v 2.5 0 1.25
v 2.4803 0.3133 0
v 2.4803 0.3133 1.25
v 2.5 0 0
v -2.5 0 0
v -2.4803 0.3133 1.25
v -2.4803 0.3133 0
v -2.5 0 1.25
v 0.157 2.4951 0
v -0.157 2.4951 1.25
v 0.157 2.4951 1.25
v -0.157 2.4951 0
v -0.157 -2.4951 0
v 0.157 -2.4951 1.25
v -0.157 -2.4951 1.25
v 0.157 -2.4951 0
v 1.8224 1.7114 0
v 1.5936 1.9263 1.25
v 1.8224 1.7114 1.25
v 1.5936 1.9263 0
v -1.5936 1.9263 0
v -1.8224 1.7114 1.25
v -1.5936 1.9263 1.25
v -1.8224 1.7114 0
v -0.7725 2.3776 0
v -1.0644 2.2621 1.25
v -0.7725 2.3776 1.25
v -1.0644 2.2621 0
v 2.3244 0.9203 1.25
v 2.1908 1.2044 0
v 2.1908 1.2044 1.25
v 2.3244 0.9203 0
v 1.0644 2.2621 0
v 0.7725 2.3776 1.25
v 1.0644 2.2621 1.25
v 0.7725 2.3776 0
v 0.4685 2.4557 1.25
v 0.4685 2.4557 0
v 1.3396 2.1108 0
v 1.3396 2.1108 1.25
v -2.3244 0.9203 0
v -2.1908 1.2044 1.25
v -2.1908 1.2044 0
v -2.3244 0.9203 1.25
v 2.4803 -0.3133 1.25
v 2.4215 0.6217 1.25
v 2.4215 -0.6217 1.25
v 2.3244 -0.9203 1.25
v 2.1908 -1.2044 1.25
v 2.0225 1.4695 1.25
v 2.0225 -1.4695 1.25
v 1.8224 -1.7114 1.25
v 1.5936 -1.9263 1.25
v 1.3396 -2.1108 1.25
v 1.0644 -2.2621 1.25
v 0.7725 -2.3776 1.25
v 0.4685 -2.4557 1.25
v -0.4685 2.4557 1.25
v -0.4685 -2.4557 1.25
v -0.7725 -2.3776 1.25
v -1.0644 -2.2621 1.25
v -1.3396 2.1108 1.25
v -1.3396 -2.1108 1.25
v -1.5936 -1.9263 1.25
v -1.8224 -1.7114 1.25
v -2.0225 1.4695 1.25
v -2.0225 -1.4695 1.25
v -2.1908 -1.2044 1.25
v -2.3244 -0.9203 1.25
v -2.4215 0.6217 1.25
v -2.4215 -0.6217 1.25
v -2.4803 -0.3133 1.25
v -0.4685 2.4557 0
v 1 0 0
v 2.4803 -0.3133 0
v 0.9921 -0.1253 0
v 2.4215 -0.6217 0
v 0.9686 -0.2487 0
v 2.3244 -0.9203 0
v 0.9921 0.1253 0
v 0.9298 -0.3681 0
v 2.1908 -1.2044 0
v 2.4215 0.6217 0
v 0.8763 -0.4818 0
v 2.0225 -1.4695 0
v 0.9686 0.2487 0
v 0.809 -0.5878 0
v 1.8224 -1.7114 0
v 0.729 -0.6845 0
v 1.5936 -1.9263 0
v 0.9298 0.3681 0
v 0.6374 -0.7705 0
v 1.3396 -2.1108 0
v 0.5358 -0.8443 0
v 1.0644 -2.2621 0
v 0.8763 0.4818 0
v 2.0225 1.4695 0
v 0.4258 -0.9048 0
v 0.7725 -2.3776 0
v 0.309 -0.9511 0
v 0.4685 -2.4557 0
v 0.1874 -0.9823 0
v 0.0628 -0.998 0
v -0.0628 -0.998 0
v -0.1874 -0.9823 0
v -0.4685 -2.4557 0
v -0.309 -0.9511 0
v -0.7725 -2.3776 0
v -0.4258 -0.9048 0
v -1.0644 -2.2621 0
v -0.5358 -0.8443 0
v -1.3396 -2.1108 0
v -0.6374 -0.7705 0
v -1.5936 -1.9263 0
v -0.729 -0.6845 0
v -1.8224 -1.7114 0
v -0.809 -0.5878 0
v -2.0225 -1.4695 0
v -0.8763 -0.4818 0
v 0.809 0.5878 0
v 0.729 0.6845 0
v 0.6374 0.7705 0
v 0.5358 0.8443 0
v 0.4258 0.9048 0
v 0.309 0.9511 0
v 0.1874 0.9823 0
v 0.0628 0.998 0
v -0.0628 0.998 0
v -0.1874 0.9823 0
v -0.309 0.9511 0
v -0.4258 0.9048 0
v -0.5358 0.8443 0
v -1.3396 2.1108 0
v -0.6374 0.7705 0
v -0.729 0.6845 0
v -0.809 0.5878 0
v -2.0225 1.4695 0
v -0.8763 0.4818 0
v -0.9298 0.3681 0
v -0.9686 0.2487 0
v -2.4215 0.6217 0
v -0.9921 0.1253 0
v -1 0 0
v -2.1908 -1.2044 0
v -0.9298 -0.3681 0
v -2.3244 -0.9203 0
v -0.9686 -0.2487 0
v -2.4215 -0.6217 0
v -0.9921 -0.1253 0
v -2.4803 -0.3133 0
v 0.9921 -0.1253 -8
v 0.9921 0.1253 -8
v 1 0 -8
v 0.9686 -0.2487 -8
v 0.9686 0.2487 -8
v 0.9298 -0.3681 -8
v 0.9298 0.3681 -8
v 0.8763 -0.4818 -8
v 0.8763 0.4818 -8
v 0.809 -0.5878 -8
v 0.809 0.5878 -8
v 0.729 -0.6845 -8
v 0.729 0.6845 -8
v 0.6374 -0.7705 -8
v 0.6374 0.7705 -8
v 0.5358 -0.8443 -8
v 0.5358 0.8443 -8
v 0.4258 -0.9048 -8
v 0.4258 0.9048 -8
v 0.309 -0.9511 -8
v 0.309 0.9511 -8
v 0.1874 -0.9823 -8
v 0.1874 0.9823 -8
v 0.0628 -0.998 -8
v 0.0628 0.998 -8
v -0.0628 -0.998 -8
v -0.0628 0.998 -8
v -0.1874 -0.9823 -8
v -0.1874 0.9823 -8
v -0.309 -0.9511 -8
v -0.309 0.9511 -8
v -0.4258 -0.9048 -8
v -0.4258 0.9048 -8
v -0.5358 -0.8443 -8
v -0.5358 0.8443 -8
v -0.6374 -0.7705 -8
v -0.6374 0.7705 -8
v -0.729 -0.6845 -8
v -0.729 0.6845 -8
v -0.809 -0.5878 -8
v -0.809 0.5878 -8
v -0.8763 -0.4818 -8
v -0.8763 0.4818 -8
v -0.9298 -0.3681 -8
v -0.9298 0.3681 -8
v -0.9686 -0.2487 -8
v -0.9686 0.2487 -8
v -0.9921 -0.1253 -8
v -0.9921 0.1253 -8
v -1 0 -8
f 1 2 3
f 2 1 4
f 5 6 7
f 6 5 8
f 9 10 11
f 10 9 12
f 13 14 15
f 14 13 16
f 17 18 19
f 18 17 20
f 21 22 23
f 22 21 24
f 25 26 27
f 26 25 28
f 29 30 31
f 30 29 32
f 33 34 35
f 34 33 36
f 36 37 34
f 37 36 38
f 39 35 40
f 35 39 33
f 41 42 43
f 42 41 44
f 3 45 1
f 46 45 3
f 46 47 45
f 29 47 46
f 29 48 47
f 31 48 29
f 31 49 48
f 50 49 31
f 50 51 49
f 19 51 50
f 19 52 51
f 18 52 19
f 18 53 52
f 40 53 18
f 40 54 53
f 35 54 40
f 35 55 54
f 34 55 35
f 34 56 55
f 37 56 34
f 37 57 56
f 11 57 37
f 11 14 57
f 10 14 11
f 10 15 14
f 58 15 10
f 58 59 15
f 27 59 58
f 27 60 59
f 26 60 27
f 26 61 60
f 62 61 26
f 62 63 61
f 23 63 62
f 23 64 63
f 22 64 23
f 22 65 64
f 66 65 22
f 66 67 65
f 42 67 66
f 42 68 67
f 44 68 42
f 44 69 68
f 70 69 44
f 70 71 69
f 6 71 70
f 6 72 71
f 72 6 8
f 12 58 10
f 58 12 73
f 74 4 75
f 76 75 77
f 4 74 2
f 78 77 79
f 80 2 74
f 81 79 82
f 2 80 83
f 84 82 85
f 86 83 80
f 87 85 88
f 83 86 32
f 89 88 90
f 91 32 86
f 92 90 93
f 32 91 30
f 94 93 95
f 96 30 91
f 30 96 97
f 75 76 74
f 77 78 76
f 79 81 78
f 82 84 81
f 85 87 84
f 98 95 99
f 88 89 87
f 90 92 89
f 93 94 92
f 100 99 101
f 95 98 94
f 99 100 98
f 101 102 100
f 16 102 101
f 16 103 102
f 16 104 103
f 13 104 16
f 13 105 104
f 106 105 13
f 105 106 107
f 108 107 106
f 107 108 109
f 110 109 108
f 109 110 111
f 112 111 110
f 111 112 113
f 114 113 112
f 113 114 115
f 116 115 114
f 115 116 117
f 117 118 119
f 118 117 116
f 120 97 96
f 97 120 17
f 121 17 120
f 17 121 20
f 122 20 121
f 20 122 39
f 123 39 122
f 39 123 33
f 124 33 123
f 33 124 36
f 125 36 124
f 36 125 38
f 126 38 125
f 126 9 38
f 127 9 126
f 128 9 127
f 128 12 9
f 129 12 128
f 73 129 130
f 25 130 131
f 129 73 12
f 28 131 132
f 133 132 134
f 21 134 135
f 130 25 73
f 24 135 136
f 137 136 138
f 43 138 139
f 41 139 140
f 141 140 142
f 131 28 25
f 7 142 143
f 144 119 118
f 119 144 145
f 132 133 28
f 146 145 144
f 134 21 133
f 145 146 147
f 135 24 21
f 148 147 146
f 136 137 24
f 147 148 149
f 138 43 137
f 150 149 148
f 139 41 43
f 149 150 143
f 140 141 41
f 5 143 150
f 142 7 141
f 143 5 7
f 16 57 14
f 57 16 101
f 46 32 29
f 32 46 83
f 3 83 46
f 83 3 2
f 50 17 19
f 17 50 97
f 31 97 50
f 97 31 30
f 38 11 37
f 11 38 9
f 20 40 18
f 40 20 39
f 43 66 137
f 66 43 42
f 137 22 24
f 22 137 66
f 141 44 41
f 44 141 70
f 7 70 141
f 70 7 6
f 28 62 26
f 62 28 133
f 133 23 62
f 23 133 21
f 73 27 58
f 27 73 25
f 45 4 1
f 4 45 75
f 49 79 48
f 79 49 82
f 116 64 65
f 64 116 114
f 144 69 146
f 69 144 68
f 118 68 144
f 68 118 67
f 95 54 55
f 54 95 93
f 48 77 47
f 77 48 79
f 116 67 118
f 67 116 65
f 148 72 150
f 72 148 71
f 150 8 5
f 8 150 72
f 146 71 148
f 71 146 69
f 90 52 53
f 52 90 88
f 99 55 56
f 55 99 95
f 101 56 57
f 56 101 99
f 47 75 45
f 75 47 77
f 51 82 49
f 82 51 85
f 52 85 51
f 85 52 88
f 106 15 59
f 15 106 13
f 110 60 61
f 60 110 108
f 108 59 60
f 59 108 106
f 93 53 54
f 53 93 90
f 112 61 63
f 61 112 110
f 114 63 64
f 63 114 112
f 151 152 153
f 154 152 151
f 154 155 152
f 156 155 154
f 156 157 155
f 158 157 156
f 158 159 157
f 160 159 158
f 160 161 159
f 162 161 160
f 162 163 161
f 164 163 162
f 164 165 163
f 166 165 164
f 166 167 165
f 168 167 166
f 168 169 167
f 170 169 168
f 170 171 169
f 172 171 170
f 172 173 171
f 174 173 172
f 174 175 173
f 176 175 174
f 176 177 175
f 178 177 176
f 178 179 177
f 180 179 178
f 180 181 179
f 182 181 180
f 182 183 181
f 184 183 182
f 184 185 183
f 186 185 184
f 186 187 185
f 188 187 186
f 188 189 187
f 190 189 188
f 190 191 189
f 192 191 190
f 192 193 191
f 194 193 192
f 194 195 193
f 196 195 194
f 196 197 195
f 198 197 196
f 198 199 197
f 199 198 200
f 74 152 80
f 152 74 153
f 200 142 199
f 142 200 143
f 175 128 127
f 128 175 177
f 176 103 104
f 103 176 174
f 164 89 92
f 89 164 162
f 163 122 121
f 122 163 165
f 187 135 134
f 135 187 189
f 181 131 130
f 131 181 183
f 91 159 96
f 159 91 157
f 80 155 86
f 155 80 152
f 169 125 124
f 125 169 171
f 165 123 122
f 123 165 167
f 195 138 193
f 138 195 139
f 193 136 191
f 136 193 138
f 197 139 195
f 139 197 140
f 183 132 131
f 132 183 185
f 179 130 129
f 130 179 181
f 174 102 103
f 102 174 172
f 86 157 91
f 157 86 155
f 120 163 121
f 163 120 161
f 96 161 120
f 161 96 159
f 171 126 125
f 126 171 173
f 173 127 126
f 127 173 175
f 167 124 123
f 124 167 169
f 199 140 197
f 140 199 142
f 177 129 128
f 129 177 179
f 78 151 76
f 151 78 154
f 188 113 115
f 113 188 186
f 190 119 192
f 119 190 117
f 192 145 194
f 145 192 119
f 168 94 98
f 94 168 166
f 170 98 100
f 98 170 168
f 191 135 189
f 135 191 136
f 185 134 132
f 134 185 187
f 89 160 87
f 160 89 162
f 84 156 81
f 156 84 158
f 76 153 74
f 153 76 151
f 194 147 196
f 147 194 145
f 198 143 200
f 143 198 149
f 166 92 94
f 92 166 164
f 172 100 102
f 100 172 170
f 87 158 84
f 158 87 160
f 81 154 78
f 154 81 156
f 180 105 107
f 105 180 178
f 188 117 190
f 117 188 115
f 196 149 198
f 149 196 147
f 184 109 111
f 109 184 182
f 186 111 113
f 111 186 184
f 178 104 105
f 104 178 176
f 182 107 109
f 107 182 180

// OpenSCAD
$fn = 50;


difference() {
	union() {
		translate(v = [0, 0, 0]) {
			rotate(a = [0, 0, 0]) {
				difference() {
					union() {
						cylinder(h = 1.2500000000, r = 2.5000000000);
						translate(v = [0, 0, -8.0000000000]) {
							cylinder(h = 8, r = 0.7500000000);
						}
						translate(v = [0, 0, -8.0000000000]) {
							cylinder(h = 8, r = 1.0000000000);
						}
						translate(v = [0, 0, -8.0000000000]) {
							cylinder(h = 8, r = 0.7500000000);
						}
					}
					union();
				}
			}
		}
	}
	union();
}
